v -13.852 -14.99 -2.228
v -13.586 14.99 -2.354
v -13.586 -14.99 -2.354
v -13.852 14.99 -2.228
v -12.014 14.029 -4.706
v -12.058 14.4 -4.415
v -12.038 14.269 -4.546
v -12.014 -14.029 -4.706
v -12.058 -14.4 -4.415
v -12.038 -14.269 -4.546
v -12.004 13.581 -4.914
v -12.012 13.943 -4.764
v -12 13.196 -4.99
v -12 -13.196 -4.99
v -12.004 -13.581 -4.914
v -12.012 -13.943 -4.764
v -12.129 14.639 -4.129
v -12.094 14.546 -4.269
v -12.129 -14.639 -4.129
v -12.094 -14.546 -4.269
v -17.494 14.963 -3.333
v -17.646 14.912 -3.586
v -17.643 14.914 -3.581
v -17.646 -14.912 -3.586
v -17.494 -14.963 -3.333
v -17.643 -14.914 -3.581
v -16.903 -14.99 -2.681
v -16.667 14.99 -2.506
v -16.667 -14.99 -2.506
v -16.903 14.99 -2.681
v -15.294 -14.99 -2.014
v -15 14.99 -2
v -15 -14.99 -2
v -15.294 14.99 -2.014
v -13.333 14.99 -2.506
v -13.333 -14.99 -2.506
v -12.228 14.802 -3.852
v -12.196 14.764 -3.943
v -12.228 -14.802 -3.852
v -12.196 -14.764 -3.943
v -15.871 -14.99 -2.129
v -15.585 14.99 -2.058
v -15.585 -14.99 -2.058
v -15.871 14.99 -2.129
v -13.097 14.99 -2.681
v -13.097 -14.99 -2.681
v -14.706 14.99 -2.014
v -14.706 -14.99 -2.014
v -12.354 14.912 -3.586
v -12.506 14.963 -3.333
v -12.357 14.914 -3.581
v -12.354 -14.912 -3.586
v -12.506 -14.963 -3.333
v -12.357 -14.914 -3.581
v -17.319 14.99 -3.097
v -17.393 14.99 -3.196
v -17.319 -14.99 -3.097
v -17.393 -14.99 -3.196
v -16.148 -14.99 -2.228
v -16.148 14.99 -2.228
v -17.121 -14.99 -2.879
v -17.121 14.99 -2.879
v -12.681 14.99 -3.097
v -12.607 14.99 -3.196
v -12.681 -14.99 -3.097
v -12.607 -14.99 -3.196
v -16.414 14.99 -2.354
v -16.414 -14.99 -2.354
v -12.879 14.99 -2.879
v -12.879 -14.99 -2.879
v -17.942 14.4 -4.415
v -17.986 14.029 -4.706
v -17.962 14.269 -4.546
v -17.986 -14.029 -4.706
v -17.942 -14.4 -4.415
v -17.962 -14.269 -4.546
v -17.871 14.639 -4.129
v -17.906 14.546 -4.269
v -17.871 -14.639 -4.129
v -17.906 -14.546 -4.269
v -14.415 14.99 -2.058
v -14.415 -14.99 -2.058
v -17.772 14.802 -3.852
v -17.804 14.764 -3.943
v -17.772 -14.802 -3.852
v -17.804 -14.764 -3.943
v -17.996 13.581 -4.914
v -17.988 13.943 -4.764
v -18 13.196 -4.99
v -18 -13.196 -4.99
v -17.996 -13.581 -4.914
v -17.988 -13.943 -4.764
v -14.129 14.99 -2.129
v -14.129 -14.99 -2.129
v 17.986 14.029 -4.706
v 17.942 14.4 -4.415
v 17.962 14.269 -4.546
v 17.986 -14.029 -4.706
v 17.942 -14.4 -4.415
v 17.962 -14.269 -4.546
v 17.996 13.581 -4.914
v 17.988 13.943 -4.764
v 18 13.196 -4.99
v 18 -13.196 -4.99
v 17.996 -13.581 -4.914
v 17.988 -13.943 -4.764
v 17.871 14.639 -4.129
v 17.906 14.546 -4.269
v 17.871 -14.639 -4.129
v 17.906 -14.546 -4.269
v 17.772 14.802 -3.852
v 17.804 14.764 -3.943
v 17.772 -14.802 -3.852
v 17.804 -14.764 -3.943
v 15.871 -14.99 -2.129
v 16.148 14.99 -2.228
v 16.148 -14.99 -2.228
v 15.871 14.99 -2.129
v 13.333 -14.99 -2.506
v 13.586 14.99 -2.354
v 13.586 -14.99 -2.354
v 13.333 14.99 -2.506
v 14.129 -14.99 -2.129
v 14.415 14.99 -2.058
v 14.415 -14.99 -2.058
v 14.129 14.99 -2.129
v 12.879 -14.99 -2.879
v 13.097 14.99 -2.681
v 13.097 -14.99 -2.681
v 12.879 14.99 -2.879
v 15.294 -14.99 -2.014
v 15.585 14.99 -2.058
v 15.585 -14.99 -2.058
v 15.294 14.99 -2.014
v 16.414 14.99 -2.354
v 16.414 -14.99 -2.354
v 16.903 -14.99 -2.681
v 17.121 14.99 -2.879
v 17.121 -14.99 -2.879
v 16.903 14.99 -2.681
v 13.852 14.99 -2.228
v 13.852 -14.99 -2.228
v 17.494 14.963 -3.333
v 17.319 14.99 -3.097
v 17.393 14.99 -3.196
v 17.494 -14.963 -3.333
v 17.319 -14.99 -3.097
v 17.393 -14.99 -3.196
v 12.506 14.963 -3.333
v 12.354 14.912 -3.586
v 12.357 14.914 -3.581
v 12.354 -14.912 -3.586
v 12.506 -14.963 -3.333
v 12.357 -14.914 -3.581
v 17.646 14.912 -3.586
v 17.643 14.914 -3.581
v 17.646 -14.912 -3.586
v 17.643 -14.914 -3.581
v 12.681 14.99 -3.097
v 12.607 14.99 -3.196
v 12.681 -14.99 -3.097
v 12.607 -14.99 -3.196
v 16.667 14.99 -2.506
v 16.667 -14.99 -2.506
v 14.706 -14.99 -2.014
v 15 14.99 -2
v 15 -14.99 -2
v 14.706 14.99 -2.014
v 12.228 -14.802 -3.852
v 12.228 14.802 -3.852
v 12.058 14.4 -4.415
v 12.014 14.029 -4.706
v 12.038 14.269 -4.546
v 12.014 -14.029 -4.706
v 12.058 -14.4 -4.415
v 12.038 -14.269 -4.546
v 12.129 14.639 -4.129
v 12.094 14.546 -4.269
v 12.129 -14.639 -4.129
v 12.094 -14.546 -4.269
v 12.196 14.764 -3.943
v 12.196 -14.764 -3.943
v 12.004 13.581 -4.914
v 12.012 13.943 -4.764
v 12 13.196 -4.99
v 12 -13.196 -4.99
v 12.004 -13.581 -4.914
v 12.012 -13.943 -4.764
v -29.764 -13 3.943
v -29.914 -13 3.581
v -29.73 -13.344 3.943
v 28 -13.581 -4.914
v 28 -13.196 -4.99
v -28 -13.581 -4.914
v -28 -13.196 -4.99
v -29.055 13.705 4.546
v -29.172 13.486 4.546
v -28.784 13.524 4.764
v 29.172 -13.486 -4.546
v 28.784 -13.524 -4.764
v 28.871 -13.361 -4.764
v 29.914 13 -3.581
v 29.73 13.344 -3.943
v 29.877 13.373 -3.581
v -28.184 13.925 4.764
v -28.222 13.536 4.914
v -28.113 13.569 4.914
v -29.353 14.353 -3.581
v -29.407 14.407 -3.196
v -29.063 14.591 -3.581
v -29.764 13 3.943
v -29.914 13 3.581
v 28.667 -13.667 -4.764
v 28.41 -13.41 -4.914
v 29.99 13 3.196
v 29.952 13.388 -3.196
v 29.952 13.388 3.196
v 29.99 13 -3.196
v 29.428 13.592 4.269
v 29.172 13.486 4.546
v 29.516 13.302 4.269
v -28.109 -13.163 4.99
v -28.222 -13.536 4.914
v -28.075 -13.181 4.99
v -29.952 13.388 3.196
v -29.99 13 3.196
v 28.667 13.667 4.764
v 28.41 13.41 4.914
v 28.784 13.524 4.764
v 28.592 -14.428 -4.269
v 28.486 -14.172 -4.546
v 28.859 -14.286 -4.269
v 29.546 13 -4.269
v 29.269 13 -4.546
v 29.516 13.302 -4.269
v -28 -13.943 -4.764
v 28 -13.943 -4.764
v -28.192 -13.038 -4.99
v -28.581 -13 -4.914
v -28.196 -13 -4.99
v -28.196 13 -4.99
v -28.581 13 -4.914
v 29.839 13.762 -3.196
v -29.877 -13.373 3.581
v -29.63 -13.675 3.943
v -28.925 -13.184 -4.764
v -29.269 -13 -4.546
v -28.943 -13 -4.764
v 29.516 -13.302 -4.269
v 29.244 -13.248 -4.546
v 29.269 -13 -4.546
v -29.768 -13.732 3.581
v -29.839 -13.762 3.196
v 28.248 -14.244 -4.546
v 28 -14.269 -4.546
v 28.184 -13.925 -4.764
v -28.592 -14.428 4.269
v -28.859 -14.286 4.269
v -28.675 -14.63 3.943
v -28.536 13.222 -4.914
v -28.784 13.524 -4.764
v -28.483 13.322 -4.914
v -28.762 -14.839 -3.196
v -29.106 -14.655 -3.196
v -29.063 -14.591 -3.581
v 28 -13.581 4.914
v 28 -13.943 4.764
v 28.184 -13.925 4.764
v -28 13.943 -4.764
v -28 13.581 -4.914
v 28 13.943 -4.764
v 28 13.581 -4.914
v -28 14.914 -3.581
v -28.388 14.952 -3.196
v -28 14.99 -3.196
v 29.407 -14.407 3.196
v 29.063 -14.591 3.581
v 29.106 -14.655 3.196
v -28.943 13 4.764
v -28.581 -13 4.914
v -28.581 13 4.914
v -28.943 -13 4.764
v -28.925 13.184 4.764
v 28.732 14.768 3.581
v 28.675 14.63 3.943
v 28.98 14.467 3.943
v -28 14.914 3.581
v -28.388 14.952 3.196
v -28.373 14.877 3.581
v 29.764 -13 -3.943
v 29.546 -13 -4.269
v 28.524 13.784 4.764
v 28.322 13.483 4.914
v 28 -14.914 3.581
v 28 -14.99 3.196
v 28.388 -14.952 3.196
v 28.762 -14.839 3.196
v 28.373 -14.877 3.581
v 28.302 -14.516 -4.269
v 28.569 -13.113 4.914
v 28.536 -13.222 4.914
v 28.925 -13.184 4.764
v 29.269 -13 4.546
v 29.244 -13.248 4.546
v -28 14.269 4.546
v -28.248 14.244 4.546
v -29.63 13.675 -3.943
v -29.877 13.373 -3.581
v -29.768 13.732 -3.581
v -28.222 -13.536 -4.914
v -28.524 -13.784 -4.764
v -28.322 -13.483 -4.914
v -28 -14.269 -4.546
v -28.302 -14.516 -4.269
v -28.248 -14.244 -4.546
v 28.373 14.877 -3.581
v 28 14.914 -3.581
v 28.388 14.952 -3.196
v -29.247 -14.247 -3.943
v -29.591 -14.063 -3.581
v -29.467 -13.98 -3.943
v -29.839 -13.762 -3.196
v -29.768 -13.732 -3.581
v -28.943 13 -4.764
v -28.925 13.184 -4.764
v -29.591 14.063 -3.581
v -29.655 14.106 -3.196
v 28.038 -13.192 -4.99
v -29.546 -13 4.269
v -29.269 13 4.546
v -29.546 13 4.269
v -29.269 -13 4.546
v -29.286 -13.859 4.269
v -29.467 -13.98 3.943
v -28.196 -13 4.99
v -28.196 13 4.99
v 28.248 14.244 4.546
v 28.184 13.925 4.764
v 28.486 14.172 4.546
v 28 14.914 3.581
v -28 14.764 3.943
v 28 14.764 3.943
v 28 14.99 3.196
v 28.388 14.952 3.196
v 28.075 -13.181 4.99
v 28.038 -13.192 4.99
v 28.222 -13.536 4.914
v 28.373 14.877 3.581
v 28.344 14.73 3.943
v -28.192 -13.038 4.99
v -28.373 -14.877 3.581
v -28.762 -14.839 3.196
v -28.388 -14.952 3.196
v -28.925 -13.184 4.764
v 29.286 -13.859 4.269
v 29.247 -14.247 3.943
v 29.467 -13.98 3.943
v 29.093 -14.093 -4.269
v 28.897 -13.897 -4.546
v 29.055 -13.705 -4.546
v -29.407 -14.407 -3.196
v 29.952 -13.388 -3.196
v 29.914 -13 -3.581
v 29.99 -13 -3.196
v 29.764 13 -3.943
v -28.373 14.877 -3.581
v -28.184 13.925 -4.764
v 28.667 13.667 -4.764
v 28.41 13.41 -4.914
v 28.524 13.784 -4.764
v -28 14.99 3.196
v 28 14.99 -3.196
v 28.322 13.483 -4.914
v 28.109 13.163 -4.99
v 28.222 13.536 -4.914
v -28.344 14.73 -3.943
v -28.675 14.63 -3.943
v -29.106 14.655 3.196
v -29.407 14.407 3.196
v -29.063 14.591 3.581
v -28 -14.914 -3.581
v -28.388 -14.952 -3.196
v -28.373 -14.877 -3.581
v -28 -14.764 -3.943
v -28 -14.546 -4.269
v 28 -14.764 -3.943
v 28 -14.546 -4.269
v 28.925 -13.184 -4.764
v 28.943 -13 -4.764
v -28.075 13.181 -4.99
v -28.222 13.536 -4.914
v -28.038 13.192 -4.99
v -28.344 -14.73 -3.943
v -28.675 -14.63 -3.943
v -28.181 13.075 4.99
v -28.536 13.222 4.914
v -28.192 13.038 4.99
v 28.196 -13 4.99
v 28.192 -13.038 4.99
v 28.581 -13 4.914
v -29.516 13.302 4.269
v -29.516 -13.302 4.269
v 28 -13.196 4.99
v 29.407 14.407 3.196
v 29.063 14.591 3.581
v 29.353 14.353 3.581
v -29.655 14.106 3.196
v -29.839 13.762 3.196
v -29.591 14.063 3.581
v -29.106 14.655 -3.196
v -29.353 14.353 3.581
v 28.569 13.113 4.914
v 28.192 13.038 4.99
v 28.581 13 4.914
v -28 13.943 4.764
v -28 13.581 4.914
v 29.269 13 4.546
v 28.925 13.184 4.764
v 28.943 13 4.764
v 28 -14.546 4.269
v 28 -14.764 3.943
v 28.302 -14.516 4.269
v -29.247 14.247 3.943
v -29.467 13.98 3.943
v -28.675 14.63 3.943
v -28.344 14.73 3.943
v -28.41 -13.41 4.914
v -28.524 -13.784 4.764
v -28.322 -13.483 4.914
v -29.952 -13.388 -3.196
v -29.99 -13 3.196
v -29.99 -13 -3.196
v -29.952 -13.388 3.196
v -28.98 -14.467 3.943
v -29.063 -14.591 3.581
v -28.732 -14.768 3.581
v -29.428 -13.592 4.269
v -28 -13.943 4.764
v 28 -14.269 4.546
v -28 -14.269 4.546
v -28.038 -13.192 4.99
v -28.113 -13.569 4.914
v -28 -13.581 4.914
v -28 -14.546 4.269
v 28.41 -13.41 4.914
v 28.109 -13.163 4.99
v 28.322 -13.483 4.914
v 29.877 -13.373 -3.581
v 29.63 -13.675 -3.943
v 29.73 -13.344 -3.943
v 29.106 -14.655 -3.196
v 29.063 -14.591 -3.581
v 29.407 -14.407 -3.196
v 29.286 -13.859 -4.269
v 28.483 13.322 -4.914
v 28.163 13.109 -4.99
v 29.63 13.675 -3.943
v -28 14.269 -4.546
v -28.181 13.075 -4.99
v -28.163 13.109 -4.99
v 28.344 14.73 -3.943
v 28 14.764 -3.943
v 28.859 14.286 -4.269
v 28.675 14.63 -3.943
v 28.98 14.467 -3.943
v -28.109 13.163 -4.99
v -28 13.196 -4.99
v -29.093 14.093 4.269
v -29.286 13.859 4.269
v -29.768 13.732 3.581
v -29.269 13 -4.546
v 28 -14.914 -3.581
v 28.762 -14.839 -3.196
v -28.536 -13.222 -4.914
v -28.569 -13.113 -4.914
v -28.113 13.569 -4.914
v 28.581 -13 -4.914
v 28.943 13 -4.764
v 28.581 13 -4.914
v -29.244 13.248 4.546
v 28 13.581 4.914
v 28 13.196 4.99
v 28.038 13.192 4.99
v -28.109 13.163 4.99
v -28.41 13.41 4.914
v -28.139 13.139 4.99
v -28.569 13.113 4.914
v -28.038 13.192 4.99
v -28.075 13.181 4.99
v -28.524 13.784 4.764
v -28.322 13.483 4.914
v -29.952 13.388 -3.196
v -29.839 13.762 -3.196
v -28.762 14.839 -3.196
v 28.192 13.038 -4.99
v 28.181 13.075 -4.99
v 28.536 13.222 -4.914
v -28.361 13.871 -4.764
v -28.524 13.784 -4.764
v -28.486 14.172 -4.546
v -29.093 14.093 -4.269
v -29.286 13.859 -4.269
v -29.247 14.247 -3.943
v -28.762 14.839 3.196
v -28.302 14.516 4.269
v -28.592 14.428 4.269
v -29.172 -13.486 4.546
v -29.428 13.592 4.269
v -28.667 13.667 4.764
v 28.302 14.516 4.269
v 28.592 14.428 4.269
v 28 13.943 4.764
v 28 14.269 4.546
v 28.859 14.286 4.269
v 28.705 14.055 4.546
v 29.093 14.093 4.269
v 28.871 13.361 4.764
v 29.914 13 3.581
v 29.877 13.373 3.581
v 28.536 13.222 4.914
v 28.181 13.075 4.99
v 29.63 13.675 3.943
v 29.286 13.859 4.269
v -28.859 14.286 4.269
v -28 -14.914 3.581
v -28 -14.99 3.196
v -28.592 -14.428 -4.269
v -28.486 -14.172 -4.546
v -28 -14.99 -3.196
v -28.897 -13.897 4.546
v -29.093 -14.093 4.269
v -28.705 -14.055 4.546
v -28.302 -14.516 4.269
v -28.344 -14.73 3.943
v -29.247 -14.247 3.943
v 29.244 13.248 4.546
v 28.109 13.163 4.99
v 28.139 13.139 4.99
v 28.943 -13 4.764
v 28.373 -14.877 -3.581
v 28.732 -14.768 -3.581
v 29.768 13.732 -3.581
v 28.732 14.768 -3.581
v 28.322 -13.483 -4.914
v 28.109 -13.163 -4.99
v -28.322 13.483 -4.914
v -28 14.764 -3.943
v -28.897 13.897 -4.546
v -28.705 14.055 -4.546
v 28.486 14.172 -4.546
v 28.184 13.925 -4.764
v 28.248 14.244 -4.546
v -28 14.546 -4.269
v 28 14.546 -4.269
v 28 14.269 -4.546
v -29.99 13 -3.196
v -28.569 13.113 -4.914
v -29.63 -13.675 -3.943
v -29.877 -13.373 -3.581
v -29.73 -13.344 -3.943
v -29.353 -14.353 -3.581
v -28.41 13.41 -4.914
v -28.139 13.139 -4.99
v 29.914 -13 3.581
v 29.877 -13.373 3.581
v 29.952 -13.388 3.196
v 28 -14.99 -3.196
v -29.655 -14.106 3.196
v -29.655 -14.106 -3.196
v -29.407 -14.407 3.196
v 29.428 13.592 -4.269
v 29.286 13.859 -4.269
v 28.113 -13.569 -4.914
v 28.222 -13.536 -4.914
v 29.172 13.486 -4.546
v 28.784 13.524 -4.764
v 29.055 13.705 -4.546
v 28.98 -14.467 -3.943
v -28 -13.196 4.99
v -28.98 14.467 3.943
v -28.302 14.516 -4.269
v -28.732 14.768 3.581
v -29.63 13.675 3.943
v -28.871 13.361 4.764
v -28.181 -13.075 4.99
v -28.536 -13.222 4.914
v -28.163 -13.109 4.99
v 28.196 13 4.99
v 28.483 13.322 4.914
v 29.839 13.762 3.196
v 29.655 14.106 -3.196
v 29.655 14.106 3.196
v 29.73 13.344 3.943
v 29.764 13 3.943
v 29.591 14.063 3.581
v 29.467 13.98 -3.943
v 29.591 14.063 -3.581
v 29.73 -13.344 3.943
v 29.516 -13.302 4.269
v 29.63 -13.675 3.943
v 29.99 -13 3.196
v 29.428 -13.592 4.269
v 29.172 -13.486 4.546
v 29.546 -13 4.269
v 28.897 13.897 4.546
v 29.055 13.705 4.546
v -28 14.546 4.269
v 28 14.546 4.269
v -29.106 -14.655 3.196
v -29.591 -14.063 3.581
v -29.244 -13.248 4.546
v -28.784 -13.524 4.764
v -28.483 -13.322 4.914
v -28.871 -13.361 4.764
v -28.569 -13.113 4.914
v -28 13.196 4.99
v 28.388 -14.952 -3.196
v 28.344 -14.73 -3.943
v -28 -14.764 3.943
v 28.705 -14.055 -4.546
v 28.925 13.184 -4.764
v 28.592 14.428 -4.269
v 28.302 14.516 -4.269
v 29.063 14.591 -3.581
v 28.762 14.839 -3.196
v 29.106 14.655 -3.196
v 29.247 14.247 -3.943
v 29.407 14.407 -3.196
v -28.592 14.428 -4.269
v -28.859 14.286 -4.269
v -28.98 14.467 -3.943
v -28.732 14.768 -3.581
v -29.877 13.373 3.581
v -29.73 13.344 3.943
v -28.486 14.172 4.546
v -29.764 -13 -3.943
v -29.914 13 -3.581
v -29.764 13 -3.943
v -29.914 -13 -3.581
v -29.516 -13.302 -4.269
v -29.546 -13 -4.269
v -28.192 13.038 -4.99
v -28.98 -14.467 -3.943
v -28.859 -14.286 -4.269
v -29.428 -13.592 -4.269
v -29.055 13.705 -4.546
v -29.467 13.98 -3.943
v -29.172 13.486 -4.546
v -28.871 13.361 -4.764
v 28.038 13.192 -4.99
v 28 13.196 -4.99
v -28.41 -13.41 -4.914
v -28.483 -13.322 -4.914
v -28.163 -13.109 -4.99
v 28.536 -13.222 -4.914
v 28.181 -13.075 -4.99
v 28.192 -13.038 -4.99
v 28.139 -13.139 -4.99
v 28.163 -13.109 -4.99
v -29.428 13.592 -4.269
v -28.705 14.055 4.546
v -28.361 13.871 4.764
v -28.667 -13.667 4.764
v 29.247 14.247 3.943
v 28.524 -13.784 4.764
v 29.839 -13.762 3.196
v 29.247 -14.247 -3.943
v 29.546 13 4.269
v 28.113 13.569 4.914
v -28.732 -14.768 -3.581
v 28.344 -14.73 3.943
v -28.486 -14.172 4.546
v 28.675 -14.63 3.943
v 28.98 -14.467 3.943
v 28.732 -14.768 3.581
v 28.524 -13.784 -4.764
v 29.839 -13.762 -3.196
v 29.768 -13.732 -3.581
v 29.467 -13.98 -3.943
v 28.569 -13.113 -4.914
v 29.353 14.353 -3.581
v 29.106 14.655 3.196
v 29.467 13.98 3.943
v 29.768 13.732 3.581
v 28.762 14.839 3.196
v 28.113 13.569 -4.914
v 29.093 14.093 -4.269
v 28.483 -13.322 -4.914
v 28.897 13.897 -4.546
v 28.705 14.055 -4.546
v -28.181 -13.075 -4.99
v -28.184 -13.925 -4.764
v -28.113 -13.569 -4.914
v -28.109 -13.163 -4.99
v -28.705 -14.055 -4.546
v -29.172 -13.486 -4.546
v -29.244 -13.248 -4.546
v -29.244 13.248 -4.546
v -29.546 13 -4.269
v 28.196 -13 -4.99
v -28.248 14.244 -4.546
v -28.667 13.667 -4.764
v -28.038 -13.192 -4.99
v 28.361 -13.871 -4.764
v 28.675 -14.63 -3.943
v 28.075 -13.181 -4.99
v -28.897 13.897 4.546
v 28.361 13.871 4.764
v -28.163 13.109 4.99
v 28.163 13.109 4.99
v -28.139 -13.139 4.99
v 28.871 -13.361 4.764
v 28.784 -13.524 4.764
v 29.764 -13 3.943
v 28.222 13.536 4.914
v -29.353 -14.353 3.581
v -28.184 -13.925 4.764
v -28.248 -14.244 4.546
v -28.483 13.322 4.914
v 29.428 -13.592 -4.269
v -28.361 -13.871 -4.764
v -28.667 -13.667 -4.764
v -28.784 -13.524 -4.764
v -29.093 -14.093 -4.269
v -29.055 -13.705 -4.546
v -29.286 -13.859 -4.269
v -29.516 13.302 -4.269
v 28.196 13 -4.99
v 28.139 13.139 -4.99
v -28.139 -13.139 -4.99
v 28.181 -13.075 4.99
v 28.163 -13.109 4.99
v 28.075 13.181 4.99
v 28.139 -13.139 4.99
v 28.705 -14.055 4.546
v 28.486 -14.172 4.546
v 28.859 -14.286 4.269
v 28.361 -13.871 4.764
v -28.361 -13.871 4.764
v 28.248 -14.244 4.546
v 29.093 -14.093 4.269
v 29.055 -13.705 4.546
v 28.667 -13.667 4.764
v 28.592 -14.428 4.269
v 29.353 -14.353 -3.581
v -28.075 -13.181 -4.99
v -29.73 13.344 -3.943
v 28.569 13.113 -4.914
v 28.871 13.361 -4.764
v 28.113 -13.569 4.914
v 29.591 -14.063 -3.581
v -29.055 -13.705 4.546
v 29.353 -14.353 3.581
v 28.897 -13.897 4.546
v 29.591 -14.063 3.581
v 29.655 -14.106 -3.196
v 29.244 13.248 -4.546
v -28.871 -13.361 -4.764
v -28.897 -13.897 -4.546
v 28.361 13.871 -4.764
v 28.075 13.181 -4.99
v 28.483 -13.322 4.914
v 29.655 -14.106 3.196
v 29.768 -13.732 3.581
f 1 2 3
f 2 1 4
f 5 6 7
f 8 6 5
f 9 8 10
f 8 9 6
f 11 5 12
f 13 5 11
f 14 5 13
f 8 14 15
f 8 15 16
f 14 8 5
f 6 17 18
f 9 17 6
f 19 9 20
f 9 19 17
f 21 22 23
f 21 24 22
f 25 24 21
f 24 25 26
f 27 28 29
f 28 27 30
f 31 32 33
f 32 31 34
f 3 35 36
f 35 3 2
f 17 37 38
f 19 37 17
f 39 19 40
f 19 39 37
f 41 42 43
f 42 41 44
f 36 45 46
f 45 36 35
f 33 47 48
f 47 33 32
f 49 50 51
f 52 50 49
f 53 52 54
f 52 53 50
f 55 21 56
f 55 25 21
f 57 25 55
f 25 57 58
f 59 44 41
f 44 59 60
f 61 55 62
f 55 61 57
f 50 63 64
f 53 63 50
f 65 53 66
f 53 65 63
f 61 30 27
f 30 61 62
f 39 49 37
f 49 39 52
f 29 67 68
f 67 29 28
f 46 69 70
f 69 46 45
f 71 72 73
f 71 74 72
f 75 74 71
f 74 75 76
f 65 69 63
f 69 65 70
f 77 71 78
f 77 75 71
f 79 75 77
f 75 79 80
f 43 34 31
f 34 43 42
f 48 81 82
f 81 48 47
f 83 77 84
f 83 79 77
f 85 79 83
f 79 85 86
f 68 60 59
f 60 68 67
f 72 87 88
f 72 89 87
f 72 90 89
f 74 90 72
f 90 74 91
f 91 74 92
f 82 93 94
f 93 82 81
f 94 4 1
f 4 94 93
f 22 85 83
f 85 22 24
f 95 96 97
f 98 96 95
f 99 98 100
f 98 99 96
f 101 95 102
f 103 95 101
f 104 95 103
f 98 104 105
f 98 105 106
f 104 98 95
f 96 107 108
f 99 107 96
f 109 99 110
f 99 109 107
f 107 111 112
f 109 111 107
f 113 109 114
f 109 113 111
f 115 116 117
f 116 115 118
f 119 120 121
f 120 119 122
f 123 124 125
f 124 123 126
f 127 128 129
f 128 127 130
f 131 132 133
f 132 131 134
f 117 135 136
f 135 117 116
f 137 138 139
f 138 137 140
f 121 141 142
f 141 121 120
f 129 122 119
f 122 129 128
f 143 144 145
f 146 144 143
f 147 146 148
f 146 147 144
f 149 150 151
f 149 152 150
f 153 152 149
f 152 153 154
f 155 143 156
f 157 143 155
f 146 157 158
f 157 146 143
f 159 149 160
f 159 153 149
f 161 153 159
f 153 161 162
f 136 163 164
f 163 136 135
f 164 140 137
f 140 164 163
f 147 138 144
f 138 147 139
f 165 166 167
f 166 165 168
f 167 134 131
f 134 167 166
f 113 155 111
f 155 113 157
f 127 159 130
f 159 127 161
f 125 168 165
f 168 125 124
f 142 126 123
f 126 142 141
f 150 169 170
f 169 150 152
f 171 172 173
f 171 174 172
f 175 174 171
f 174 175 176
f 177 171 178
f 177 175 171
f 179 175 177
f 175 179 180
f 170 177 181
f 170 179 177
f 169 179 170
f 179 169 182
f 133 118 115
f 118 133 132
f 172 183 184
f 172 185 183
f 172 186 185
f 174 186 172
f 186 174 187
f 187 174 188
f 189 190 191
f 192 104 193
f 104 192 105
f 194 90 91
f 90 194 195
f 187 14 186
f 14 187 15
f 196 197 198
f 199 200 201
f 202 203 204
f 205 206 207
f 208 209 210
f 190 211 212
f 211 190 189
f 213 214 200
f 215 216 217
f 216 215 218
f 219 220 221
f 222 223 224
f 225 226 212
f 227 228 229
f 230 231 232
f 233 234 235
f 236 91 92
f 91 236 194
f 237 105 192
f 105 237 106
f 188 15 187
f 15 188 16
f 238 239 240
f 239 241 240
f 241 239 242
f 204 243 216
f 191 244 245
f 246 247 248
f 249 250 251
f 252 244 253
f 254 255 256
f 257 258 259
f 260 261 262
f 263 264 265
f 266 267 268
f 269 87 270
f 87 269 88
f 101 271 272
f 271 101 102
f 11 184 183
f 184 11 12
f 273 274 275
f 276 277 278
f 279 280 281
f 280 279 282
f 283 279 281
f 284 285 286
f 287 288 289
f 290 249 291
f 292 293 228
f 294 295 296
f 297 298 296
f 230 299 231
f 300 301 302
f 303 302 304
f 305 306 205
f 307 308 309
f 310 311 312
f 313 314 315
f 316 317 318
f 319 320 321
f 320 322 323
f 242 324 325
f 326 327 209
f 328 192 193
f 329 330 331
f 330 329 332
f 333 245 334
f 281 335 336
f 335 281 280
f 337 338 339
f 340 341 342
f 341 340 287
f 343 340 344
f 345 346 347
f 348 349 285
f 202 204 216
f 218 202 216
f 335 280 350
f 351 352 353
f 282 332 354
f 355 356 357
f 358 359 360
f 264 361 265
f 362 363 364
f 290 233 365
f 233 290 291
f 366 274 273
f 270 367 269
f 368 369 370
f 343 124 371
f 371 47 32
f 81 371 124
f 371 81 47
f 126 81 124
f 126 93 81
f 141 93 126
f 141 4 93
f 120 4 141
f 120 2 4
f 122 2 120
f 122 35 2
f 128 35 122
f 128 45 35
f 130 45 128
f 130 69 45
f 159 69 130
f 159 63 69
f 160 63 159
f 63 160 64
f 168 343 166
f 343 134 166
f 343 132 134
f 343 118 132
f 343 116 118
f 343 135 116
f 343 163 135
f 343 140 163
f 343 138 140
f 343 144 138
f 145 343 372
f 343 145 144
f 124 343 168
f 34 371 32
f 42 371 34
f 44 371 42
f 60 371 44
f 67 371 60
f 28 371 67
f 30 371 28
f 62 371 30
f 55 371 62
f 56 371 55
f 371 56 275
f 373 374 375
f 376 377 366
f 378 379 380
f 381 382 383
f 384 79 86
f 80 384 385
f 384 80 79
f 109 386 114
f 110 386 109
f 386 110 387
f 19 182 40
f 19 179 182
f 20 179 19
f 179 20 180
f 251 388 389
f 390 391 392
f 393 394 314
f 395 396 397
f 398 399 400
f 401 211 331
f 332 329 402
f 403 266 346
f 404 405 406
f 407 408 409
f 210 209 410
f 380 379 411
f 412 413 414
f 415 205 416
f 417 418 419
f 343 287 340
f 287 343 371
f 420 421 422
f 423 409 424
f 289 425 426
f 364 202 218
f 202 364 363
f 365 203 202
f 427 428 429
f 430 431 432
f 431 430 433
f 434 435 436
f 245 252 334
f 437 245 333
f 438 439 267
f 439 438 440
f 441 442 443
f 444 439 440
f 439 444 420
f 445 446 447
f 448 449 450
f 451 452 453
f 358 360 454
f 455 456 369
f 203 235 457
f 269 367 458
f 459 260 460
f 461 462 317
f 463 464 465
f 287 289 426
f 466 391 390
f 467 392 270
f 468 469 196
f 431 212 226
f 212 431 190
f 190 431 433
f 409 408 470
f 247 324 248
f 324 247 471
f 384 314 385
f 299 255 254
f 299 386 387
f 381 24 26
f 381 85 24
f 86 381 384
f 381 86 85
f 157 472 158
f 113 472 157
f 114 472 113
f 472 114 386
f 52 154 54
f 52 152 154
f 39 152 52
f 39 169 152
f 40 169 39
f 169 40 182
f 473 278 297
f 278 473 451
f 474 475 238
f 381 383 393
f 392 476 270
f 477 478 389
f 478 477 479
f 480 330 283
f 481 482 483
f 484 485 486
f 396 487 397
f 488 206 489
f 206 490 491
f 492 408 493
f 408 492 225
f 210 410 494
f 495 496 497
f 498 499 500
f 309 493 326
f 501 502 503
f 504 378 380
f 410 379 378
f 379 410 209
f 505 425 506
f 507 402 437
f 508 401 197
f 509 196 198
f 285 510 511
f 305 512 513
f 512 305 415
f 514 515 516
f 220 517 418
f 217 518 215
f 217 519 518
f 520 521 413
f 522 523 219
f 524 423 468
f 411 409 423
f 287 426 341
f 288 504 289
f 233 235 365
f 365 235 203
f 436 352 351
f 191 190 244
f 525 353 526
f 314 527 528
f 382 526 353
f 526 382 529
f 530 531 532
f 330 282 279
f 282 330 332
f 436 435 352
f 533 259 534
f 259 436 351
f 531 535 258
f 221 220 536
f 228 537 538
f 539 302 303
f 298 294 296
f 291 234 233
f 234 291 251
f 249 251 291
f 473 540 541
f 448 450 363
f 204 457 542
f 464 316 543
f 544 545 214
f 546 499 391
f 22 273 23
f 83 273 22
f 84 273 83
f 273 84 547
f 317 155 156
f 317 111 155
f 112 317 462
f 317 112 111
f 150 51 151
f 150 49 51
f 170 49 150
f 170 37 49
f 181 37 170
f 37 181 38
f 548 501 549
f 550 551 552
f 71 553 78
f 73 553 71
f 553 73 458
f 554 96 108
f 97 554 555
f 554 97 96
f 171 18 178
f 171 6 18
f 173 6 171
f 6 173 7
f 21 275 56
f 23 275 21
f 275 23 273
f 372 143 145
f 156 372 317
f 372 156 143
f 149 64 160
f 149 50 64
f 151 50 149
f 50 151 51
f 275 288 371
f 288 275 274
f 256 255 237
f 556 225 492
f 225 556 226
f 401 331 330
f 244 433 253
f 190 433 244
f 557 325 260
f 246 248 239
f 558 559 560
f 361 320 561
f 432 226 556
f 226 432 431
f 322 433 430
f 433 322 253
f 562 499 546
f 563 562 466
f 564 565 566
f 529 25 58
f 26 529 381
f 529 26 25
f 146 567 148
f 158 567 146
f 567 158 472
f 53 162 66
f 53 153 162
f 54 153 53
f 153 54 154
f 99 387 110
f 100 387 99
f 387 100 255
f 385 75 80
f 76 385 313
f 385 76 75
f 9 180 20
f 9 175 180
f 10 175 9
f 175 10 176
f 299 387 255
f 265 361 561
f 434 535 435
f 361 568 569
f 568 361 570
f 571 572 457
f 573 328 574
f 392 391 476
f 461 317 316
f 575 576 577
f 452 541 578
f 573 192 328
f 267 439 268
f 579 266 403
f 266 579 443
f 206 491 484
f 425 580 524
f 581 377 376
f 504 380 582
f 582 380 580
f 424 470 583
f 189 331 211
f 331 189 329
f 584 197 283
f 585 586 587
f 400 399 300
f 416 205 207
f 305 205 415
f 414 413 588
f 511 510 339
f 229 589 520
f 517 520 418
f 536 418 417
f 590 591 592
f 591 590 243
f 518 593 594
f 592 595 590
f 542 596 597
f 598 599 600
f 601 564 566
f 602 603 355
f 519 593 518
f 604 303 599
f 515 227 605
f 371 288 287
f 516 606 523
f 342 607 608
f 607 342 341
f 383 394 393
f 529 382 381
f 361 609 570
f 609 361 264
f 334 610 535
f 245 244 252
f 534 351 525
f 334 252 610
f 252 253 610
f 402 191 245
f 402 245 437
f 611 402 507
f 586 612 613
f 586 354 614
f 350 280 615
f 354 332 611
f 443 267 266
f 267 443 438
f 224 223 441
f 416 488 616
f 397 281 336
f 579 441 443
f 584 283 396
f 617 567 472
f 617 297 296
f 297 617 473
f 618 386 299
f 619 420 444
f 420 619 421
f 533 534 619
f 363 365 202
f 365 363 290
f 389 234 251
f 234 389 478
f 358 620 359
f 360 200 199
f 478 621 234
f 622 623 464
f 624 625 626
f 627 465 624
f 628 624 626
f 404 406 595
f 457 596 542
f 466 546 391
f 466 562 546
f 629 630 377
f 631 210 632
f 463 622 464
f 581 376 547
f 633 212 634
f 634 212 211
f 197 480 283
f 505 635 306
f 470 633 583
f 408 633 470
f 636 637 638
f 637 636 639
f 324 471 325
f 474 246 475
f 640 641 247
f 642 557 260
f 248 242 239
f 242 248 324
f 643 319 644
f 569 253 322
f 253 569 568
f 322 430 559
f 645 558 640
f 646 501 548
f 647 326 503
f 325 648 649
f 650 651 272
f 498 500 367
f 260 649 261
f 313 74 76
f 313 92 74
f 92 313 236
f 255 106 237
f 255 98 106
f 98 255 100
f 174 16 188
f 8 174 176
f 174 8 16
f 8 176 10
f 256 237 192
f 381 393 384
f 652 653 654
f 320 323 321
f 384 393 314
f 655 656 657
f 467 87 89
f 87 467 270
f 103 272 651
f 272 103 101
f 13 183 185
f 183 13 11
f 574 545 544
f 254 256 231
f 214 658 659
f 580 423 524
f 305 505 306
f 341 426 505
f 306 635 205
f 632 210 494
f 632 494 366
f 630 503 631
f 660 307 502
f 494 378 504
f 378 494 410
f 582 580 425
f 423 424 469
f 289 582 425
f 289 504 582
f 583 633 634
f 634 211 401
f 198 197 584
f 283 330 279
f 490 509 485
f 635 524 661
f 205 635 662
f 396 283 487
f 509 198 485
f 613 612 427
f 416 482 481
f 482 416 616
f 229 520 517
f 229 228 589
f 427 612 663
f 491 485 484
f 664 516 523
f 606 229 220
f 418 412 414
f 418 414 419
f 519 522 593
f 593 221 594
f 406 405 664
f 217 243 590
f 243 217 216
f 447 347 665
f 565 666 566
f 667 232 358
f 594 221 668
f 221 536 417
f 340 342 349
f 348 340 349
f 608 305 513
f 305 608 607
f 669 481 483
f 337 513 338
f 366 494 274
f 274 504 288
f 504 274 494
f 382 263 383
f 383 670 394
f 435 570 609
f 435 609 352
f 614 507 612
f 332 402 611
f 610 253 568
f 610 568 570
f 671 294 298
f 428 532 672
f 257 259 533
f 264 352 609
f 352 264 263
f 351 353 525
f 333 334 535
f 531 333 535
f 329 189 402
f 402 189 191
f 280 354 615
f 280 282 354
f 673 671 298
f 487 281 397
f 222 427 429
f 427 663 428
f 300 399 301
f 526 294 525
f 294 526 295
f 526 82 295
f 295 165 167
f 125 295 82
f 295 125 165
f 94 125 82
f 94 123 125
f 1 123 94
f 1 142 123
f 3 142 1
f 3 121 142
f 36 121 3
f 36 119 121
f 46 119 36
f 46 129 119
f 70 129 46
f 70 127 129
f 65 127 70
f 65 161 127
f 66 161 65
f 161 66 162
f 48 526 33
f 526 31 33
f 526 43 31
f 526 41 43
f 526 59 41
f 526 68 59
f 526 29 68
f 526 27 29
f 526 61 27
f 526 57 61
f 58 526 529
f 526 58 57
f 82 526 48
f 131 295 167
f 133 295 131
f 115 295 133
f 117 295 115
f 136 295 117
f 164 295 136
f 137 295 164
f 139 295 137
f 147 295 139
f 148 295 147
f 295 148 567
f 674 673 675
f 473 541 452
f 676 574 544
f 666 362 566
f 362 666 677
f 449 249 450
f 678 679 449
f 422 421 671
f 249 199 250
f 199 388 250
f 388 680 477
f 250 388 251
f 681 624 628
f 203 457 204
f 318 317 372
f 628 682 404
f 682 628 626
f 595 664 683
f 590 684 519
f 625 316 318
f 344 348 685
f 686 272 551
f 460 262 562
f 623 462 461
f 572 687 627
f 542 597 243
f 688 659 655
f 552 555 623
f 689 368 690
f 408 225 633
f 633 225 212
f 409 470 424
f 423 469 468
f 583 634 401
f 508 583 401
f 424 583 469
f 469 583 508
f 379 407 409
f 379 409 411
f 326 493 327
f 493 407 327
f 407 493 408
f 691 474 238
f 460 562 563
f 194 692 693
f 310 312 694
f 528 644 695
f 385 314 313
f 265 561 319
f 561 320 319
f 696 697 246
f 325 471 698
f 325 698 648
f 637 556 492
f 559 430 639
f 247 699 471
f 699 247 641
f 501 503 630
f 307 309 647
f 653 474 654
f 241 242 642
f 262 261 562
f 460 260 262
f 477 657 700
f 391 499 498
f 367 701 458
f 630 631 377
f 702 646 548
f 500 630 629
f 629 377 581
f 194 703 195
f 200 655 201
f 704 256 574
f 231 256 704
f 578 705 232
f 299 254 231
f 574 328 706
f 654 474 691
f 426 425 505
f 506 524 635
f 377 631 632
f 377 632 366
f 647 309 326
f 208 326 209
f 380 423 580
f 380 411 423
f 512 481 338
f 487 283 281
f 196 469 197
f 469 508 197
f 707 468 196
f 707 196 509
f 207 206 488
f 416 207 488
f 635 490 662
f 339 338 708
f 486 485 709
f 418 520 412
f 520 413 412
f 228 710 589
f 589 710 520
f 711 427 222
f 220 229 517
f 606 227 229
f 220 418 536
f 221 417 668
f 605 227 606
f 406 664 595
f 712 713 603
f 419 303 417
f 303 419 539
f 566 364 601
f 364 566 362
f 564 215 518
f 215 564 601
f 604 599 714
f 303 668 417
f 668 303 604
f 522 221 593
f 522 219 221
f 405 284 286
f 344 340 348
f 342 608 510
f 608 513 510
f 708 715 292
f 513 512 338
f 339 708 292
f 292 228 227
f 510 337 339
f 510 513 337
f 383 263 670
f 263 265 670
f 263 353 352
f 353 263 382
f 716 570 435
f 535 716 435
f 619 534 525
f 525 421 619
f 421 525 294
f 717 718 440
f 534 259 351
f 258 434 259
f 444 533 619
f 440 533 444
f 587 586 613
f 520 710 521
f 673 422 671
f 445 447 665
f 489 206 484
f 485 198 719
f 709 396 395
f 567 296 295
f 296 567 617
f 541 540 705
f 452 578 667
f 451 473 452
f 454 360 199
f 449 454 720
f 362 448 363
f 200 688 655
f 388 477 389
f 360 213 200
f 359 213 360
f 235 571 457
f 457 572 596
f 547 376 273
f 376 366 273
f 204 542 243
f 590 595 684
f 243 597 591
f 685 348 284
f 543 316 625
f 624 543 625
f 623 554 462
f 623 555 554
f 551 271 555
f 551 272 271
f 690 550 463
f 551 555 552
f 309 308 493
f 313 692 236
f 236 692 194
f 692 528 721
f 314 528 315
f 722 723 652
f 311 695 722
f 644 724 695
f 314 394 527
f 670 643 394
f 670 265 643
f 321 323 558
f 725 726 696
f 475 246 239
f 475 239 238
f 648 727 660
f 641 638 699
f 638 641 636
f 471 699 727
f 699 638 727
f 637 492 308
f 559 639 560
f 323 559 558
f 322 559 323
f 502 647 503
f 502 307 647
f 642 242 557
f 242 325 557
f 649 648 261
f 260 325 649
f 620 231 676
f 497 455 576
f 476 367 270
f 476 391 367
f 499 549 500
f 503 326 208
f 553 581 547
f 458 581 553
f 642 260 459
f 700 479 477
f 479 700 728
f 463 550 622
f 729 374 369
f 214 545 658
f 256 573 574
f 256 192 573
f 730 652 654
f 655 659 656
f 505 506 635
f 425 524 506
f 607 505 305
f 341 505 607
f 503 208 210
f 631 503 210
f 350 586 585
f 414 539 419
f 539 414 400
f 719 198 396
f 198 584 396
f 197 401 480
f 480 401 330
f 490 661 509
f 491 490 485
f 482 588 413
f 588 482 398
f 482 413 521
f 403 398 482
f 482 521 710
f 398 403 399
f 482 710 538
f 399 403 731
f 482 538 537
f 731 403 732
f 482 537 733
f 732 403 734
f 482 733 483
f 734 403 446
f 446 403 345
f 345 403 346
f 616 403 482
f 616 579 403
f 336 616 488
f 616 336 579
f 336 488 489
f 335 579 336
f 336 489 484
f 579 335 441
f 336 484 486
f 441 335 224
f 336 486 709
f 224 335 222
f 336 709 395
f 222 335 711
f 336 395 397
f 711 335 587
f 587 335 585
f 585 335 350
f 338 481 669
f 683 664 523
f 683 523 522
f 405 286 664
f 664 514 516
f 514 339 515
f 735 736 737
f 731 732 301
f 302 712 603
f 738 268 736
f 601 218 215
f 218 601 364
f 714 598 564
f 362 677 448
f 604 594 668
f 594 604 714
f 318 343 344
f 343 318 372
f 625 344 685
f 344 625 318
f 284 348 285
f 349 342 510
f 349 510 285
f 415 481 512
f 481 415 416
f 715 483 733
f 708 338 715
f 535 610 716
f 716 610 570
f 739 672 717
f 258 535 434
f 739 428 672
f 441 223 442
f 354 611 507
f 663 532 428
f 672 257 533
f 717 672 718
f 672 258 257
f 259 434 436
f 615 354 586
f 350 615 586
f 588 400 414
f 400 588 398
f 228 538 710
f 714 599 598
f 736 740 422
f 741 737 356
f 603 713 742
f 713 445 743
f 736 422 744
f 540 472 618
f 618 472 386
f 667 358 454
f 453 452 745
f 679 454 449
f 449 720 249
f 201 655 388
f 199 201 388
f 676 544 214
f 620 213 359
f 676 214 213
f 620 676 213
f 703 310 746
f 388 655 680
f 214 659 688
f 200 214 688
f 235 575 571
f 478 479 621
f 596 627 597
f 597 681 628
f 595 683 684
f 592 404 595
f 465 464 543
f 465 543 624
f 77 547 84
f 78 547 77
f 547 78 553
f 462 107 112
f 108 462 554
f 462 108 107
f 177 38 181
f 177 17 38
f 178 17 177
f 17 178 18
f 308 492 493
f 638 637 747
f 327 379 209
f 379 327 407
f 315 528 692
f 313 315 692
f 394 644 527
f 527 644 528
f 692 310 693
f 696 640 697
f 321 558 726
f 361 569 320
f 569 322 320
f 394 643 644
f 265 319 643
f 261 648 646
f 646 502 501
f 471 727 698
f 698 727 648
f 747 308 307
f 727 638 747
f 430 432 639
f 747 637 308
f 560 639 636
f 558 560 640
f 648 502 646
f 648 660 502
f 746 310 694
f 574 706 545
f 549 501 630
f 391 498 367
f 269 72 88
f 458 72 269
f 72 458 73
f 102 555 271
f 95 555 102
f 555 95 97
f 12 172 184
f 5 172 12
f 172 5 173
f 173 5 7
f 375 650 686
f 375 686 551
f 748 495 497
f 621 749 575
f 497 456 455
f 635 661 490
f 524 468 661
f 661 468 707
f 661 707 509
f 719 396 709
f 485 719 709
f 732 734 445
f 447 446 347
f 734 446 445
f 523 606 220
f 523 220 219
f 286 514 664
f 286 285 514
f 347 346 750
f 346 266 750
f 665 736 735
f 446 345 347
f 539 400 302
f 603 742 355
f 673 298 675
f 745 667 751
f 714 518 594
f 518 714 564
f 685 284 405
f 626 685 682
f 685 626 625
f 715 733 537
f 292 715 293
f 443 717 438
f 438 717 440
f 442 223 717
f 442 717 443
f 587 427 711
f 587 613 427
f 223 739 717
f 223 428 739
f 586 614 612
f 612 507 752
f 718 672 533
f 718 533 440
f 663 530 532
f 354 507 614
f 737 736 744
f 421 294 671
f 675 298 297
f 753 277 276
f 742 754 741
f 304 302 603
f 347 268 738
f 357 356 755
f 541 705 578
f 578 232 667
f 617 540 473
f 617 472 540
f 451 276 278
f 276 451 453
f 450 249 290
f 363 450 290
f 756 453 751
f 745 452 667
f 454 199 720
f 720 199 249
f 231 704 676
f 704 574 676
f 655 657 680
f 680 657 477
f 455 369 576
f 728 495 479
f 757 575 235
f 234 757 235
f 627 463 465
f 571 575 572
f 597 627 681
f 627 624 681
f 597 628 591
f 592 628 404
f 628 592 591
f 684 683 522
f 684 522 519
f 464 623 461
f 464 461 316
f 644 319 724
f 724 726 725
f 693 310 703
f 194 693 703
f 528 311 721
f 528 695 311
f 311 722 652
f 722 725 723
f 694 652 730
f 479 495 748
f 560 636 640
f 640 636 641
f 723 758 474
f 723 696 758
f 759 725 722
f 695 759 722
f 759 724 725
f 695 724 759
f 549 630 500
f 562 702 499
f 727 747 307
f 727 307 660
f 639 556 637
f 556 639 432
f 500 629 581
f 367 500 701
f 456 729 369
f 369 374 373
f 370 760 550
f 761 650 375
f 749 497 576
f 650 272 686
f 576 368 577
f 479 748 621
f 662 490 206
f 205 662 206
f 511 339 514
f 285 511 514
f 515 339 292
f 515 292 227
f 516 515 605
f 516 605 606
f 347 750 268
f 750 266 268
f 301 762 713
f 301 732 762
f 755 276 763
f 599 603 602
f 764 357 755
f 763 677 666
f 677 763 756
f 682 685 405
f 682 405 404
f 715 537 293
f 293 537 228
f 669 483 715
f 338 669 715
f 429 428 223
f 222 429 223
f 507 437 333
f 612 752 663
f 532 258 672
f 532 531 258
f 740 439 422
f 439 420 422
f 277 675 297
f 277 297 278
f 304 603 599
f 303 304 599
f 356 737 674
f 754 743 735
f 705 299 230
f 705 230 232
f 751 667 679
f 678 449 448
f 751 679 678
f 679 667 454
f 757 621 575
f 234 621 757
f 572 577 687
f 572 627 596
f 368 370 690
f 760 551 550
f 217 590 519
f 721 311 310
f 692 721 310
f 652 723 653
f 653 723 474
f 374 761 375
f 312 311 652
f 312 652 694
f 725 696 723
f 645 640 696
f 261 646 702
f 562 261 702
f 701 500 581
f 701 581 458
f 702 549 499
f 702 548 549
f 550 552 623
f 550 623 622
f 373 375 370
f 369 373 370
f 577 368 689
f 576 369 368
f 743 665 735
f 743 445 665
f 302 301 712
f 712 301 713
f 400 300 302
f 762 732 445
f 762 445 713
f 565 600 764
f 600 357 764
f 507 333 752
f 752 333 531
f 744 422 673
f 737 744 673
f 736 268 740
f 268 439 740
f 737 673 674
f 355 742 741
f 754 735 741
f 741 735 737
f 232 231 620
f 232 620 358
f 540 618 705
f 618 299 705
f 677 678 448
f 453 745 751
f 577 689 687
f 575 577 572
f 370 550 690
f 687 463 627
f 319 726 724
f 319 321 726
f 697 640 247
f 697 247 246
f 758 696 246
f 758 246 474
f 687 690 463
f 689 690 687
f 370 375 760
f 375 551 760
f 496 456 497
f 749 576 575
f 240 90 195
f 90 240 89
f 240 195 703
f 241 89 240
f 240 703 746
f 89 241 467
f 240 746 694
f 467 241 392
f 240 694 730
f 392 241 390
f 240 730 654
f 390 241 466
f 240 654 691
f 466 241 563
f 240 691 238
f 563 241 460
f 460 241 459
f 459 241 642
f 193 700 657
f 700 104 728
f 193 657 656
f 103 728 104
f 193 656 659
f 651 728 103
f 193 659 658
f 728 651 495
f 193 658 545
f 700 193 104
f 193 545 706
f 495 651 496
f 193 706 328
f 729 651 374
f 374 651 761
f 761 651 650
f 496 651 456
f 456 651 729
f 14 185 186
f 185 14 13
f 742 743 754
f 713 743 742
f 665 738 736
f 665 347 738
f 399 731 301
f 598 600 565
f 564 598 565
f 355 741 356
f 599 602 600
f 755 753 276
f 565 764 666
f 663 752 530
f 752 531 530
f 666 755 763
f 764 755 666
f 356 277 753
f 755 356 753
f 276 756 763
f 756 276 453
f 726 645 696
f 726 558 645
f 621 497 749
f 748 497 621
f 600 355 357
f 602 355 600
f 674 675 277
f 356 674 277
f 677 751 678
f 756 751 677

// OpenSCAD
// Module to create a rounded rectangular block
module rounded_block(length, width, height, radius) {
    minkowski() {
        cube([length - 2*radius, width - 2*radius, height - 2*radius], center=true);
        sphere(r=radius, $fn=32);
    }
}

// Module to create the mounting block with holes
module rectangular_mounting_block() {
    length = 60;
    width = 30;
    height = 10;
    hole_diameter = 6;
    hole_radius = hole_diameter / 2;
    hole_offset_x = 15;
    hole_offset_y = 10;
    fillet_radius = 2;

    difference() {
        // Main block with rounded edges
        rounded_block(length, width, height, fillet_radius);

        // Through holes
        translate([0, 0, -height])
        for (x = [-hole_offset_x, hole_offset_x]) {
            translate([x, 0, height/2])
                rotate([90, 0, 0])
                    cylinder(h=width*2, r=hole_radius, center=true, $fn=64);
        }
    }
}

// Render the block
rectangular_mounting_block();
